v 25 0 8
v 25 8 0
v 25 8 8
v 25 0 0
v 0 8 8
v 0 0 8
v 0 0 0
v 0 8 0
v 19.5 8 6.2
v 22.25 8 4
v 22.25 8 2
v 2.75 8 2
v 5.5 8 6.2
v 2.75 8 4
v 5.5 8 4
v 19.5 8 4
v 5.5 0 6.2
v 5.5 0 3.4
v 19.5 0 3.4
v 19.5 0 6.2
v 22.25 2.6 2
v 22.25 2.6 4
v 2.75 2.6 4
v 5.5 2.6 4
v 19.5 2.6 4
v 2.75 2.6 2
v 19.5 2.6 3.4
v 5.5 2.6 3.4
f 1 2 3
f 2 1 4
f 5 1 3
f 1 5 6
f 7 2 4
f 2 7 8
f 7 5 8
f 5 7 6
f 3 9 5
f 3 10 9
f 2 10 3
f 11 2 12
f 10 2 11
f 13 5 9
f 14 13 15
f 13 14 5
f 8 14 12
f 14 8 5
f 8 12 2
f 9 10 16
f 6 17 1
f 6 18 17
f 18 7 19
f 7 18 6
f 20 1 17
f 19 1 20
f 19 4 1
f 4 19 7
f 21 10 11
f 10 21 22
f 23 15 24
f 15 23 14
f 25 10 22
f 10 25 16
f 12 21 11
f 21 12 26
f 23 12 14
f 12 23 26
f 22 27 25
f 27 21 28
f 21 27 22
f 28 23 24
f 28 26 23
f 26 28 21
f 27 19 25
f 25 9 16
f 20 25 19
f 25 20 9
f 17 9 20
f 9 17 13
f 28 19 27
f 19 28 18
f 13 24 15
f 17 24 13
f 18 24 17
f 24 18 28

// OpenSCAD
/**
 *  ================================================================
 *  ================= PROTOTYPE NOT FINISHED PIECE =================
 *  ================================================================
 */

// card width 18mm
// card z 1.9mm

// card metal with 14mm
// card metal z 2mm

// metal / card offset 2.7mm

module sdcardHolderPiece() {

    box_x_size = 25;
    box_y_size = 8;
    box_z_size = 8;

    card_x_size = 19.5;
    card_z_size = 2;
    

    card_metal_x_size = 14;
    card_metal_z_size = 2.2;

    metal_offset = 2.6;
    metal_z_offset = 0.6;



    difference() {
        color("grey", 0.8)
            cube([box_x_size, box_y_size, box_z_size], center = false);


            // card
            translate([
                box_x_size / 2 - card_x_size / 2,
                metal_offset,
                box_z_size / 2 - card_z_size
            ])
                cube([card_x_size, 20, card_z_size], center = false);


            // Metal
            translate([
                box_x_size / 2 - card_metal_x_size / 2,
                -1,
                box_z_size / 2 - metal_z_offset
            ])
                cube([card_metal_x_size, 20, card_metal_z_size + metal_z_offset], center = false);

    }

}

sdcardHolderPiece();
